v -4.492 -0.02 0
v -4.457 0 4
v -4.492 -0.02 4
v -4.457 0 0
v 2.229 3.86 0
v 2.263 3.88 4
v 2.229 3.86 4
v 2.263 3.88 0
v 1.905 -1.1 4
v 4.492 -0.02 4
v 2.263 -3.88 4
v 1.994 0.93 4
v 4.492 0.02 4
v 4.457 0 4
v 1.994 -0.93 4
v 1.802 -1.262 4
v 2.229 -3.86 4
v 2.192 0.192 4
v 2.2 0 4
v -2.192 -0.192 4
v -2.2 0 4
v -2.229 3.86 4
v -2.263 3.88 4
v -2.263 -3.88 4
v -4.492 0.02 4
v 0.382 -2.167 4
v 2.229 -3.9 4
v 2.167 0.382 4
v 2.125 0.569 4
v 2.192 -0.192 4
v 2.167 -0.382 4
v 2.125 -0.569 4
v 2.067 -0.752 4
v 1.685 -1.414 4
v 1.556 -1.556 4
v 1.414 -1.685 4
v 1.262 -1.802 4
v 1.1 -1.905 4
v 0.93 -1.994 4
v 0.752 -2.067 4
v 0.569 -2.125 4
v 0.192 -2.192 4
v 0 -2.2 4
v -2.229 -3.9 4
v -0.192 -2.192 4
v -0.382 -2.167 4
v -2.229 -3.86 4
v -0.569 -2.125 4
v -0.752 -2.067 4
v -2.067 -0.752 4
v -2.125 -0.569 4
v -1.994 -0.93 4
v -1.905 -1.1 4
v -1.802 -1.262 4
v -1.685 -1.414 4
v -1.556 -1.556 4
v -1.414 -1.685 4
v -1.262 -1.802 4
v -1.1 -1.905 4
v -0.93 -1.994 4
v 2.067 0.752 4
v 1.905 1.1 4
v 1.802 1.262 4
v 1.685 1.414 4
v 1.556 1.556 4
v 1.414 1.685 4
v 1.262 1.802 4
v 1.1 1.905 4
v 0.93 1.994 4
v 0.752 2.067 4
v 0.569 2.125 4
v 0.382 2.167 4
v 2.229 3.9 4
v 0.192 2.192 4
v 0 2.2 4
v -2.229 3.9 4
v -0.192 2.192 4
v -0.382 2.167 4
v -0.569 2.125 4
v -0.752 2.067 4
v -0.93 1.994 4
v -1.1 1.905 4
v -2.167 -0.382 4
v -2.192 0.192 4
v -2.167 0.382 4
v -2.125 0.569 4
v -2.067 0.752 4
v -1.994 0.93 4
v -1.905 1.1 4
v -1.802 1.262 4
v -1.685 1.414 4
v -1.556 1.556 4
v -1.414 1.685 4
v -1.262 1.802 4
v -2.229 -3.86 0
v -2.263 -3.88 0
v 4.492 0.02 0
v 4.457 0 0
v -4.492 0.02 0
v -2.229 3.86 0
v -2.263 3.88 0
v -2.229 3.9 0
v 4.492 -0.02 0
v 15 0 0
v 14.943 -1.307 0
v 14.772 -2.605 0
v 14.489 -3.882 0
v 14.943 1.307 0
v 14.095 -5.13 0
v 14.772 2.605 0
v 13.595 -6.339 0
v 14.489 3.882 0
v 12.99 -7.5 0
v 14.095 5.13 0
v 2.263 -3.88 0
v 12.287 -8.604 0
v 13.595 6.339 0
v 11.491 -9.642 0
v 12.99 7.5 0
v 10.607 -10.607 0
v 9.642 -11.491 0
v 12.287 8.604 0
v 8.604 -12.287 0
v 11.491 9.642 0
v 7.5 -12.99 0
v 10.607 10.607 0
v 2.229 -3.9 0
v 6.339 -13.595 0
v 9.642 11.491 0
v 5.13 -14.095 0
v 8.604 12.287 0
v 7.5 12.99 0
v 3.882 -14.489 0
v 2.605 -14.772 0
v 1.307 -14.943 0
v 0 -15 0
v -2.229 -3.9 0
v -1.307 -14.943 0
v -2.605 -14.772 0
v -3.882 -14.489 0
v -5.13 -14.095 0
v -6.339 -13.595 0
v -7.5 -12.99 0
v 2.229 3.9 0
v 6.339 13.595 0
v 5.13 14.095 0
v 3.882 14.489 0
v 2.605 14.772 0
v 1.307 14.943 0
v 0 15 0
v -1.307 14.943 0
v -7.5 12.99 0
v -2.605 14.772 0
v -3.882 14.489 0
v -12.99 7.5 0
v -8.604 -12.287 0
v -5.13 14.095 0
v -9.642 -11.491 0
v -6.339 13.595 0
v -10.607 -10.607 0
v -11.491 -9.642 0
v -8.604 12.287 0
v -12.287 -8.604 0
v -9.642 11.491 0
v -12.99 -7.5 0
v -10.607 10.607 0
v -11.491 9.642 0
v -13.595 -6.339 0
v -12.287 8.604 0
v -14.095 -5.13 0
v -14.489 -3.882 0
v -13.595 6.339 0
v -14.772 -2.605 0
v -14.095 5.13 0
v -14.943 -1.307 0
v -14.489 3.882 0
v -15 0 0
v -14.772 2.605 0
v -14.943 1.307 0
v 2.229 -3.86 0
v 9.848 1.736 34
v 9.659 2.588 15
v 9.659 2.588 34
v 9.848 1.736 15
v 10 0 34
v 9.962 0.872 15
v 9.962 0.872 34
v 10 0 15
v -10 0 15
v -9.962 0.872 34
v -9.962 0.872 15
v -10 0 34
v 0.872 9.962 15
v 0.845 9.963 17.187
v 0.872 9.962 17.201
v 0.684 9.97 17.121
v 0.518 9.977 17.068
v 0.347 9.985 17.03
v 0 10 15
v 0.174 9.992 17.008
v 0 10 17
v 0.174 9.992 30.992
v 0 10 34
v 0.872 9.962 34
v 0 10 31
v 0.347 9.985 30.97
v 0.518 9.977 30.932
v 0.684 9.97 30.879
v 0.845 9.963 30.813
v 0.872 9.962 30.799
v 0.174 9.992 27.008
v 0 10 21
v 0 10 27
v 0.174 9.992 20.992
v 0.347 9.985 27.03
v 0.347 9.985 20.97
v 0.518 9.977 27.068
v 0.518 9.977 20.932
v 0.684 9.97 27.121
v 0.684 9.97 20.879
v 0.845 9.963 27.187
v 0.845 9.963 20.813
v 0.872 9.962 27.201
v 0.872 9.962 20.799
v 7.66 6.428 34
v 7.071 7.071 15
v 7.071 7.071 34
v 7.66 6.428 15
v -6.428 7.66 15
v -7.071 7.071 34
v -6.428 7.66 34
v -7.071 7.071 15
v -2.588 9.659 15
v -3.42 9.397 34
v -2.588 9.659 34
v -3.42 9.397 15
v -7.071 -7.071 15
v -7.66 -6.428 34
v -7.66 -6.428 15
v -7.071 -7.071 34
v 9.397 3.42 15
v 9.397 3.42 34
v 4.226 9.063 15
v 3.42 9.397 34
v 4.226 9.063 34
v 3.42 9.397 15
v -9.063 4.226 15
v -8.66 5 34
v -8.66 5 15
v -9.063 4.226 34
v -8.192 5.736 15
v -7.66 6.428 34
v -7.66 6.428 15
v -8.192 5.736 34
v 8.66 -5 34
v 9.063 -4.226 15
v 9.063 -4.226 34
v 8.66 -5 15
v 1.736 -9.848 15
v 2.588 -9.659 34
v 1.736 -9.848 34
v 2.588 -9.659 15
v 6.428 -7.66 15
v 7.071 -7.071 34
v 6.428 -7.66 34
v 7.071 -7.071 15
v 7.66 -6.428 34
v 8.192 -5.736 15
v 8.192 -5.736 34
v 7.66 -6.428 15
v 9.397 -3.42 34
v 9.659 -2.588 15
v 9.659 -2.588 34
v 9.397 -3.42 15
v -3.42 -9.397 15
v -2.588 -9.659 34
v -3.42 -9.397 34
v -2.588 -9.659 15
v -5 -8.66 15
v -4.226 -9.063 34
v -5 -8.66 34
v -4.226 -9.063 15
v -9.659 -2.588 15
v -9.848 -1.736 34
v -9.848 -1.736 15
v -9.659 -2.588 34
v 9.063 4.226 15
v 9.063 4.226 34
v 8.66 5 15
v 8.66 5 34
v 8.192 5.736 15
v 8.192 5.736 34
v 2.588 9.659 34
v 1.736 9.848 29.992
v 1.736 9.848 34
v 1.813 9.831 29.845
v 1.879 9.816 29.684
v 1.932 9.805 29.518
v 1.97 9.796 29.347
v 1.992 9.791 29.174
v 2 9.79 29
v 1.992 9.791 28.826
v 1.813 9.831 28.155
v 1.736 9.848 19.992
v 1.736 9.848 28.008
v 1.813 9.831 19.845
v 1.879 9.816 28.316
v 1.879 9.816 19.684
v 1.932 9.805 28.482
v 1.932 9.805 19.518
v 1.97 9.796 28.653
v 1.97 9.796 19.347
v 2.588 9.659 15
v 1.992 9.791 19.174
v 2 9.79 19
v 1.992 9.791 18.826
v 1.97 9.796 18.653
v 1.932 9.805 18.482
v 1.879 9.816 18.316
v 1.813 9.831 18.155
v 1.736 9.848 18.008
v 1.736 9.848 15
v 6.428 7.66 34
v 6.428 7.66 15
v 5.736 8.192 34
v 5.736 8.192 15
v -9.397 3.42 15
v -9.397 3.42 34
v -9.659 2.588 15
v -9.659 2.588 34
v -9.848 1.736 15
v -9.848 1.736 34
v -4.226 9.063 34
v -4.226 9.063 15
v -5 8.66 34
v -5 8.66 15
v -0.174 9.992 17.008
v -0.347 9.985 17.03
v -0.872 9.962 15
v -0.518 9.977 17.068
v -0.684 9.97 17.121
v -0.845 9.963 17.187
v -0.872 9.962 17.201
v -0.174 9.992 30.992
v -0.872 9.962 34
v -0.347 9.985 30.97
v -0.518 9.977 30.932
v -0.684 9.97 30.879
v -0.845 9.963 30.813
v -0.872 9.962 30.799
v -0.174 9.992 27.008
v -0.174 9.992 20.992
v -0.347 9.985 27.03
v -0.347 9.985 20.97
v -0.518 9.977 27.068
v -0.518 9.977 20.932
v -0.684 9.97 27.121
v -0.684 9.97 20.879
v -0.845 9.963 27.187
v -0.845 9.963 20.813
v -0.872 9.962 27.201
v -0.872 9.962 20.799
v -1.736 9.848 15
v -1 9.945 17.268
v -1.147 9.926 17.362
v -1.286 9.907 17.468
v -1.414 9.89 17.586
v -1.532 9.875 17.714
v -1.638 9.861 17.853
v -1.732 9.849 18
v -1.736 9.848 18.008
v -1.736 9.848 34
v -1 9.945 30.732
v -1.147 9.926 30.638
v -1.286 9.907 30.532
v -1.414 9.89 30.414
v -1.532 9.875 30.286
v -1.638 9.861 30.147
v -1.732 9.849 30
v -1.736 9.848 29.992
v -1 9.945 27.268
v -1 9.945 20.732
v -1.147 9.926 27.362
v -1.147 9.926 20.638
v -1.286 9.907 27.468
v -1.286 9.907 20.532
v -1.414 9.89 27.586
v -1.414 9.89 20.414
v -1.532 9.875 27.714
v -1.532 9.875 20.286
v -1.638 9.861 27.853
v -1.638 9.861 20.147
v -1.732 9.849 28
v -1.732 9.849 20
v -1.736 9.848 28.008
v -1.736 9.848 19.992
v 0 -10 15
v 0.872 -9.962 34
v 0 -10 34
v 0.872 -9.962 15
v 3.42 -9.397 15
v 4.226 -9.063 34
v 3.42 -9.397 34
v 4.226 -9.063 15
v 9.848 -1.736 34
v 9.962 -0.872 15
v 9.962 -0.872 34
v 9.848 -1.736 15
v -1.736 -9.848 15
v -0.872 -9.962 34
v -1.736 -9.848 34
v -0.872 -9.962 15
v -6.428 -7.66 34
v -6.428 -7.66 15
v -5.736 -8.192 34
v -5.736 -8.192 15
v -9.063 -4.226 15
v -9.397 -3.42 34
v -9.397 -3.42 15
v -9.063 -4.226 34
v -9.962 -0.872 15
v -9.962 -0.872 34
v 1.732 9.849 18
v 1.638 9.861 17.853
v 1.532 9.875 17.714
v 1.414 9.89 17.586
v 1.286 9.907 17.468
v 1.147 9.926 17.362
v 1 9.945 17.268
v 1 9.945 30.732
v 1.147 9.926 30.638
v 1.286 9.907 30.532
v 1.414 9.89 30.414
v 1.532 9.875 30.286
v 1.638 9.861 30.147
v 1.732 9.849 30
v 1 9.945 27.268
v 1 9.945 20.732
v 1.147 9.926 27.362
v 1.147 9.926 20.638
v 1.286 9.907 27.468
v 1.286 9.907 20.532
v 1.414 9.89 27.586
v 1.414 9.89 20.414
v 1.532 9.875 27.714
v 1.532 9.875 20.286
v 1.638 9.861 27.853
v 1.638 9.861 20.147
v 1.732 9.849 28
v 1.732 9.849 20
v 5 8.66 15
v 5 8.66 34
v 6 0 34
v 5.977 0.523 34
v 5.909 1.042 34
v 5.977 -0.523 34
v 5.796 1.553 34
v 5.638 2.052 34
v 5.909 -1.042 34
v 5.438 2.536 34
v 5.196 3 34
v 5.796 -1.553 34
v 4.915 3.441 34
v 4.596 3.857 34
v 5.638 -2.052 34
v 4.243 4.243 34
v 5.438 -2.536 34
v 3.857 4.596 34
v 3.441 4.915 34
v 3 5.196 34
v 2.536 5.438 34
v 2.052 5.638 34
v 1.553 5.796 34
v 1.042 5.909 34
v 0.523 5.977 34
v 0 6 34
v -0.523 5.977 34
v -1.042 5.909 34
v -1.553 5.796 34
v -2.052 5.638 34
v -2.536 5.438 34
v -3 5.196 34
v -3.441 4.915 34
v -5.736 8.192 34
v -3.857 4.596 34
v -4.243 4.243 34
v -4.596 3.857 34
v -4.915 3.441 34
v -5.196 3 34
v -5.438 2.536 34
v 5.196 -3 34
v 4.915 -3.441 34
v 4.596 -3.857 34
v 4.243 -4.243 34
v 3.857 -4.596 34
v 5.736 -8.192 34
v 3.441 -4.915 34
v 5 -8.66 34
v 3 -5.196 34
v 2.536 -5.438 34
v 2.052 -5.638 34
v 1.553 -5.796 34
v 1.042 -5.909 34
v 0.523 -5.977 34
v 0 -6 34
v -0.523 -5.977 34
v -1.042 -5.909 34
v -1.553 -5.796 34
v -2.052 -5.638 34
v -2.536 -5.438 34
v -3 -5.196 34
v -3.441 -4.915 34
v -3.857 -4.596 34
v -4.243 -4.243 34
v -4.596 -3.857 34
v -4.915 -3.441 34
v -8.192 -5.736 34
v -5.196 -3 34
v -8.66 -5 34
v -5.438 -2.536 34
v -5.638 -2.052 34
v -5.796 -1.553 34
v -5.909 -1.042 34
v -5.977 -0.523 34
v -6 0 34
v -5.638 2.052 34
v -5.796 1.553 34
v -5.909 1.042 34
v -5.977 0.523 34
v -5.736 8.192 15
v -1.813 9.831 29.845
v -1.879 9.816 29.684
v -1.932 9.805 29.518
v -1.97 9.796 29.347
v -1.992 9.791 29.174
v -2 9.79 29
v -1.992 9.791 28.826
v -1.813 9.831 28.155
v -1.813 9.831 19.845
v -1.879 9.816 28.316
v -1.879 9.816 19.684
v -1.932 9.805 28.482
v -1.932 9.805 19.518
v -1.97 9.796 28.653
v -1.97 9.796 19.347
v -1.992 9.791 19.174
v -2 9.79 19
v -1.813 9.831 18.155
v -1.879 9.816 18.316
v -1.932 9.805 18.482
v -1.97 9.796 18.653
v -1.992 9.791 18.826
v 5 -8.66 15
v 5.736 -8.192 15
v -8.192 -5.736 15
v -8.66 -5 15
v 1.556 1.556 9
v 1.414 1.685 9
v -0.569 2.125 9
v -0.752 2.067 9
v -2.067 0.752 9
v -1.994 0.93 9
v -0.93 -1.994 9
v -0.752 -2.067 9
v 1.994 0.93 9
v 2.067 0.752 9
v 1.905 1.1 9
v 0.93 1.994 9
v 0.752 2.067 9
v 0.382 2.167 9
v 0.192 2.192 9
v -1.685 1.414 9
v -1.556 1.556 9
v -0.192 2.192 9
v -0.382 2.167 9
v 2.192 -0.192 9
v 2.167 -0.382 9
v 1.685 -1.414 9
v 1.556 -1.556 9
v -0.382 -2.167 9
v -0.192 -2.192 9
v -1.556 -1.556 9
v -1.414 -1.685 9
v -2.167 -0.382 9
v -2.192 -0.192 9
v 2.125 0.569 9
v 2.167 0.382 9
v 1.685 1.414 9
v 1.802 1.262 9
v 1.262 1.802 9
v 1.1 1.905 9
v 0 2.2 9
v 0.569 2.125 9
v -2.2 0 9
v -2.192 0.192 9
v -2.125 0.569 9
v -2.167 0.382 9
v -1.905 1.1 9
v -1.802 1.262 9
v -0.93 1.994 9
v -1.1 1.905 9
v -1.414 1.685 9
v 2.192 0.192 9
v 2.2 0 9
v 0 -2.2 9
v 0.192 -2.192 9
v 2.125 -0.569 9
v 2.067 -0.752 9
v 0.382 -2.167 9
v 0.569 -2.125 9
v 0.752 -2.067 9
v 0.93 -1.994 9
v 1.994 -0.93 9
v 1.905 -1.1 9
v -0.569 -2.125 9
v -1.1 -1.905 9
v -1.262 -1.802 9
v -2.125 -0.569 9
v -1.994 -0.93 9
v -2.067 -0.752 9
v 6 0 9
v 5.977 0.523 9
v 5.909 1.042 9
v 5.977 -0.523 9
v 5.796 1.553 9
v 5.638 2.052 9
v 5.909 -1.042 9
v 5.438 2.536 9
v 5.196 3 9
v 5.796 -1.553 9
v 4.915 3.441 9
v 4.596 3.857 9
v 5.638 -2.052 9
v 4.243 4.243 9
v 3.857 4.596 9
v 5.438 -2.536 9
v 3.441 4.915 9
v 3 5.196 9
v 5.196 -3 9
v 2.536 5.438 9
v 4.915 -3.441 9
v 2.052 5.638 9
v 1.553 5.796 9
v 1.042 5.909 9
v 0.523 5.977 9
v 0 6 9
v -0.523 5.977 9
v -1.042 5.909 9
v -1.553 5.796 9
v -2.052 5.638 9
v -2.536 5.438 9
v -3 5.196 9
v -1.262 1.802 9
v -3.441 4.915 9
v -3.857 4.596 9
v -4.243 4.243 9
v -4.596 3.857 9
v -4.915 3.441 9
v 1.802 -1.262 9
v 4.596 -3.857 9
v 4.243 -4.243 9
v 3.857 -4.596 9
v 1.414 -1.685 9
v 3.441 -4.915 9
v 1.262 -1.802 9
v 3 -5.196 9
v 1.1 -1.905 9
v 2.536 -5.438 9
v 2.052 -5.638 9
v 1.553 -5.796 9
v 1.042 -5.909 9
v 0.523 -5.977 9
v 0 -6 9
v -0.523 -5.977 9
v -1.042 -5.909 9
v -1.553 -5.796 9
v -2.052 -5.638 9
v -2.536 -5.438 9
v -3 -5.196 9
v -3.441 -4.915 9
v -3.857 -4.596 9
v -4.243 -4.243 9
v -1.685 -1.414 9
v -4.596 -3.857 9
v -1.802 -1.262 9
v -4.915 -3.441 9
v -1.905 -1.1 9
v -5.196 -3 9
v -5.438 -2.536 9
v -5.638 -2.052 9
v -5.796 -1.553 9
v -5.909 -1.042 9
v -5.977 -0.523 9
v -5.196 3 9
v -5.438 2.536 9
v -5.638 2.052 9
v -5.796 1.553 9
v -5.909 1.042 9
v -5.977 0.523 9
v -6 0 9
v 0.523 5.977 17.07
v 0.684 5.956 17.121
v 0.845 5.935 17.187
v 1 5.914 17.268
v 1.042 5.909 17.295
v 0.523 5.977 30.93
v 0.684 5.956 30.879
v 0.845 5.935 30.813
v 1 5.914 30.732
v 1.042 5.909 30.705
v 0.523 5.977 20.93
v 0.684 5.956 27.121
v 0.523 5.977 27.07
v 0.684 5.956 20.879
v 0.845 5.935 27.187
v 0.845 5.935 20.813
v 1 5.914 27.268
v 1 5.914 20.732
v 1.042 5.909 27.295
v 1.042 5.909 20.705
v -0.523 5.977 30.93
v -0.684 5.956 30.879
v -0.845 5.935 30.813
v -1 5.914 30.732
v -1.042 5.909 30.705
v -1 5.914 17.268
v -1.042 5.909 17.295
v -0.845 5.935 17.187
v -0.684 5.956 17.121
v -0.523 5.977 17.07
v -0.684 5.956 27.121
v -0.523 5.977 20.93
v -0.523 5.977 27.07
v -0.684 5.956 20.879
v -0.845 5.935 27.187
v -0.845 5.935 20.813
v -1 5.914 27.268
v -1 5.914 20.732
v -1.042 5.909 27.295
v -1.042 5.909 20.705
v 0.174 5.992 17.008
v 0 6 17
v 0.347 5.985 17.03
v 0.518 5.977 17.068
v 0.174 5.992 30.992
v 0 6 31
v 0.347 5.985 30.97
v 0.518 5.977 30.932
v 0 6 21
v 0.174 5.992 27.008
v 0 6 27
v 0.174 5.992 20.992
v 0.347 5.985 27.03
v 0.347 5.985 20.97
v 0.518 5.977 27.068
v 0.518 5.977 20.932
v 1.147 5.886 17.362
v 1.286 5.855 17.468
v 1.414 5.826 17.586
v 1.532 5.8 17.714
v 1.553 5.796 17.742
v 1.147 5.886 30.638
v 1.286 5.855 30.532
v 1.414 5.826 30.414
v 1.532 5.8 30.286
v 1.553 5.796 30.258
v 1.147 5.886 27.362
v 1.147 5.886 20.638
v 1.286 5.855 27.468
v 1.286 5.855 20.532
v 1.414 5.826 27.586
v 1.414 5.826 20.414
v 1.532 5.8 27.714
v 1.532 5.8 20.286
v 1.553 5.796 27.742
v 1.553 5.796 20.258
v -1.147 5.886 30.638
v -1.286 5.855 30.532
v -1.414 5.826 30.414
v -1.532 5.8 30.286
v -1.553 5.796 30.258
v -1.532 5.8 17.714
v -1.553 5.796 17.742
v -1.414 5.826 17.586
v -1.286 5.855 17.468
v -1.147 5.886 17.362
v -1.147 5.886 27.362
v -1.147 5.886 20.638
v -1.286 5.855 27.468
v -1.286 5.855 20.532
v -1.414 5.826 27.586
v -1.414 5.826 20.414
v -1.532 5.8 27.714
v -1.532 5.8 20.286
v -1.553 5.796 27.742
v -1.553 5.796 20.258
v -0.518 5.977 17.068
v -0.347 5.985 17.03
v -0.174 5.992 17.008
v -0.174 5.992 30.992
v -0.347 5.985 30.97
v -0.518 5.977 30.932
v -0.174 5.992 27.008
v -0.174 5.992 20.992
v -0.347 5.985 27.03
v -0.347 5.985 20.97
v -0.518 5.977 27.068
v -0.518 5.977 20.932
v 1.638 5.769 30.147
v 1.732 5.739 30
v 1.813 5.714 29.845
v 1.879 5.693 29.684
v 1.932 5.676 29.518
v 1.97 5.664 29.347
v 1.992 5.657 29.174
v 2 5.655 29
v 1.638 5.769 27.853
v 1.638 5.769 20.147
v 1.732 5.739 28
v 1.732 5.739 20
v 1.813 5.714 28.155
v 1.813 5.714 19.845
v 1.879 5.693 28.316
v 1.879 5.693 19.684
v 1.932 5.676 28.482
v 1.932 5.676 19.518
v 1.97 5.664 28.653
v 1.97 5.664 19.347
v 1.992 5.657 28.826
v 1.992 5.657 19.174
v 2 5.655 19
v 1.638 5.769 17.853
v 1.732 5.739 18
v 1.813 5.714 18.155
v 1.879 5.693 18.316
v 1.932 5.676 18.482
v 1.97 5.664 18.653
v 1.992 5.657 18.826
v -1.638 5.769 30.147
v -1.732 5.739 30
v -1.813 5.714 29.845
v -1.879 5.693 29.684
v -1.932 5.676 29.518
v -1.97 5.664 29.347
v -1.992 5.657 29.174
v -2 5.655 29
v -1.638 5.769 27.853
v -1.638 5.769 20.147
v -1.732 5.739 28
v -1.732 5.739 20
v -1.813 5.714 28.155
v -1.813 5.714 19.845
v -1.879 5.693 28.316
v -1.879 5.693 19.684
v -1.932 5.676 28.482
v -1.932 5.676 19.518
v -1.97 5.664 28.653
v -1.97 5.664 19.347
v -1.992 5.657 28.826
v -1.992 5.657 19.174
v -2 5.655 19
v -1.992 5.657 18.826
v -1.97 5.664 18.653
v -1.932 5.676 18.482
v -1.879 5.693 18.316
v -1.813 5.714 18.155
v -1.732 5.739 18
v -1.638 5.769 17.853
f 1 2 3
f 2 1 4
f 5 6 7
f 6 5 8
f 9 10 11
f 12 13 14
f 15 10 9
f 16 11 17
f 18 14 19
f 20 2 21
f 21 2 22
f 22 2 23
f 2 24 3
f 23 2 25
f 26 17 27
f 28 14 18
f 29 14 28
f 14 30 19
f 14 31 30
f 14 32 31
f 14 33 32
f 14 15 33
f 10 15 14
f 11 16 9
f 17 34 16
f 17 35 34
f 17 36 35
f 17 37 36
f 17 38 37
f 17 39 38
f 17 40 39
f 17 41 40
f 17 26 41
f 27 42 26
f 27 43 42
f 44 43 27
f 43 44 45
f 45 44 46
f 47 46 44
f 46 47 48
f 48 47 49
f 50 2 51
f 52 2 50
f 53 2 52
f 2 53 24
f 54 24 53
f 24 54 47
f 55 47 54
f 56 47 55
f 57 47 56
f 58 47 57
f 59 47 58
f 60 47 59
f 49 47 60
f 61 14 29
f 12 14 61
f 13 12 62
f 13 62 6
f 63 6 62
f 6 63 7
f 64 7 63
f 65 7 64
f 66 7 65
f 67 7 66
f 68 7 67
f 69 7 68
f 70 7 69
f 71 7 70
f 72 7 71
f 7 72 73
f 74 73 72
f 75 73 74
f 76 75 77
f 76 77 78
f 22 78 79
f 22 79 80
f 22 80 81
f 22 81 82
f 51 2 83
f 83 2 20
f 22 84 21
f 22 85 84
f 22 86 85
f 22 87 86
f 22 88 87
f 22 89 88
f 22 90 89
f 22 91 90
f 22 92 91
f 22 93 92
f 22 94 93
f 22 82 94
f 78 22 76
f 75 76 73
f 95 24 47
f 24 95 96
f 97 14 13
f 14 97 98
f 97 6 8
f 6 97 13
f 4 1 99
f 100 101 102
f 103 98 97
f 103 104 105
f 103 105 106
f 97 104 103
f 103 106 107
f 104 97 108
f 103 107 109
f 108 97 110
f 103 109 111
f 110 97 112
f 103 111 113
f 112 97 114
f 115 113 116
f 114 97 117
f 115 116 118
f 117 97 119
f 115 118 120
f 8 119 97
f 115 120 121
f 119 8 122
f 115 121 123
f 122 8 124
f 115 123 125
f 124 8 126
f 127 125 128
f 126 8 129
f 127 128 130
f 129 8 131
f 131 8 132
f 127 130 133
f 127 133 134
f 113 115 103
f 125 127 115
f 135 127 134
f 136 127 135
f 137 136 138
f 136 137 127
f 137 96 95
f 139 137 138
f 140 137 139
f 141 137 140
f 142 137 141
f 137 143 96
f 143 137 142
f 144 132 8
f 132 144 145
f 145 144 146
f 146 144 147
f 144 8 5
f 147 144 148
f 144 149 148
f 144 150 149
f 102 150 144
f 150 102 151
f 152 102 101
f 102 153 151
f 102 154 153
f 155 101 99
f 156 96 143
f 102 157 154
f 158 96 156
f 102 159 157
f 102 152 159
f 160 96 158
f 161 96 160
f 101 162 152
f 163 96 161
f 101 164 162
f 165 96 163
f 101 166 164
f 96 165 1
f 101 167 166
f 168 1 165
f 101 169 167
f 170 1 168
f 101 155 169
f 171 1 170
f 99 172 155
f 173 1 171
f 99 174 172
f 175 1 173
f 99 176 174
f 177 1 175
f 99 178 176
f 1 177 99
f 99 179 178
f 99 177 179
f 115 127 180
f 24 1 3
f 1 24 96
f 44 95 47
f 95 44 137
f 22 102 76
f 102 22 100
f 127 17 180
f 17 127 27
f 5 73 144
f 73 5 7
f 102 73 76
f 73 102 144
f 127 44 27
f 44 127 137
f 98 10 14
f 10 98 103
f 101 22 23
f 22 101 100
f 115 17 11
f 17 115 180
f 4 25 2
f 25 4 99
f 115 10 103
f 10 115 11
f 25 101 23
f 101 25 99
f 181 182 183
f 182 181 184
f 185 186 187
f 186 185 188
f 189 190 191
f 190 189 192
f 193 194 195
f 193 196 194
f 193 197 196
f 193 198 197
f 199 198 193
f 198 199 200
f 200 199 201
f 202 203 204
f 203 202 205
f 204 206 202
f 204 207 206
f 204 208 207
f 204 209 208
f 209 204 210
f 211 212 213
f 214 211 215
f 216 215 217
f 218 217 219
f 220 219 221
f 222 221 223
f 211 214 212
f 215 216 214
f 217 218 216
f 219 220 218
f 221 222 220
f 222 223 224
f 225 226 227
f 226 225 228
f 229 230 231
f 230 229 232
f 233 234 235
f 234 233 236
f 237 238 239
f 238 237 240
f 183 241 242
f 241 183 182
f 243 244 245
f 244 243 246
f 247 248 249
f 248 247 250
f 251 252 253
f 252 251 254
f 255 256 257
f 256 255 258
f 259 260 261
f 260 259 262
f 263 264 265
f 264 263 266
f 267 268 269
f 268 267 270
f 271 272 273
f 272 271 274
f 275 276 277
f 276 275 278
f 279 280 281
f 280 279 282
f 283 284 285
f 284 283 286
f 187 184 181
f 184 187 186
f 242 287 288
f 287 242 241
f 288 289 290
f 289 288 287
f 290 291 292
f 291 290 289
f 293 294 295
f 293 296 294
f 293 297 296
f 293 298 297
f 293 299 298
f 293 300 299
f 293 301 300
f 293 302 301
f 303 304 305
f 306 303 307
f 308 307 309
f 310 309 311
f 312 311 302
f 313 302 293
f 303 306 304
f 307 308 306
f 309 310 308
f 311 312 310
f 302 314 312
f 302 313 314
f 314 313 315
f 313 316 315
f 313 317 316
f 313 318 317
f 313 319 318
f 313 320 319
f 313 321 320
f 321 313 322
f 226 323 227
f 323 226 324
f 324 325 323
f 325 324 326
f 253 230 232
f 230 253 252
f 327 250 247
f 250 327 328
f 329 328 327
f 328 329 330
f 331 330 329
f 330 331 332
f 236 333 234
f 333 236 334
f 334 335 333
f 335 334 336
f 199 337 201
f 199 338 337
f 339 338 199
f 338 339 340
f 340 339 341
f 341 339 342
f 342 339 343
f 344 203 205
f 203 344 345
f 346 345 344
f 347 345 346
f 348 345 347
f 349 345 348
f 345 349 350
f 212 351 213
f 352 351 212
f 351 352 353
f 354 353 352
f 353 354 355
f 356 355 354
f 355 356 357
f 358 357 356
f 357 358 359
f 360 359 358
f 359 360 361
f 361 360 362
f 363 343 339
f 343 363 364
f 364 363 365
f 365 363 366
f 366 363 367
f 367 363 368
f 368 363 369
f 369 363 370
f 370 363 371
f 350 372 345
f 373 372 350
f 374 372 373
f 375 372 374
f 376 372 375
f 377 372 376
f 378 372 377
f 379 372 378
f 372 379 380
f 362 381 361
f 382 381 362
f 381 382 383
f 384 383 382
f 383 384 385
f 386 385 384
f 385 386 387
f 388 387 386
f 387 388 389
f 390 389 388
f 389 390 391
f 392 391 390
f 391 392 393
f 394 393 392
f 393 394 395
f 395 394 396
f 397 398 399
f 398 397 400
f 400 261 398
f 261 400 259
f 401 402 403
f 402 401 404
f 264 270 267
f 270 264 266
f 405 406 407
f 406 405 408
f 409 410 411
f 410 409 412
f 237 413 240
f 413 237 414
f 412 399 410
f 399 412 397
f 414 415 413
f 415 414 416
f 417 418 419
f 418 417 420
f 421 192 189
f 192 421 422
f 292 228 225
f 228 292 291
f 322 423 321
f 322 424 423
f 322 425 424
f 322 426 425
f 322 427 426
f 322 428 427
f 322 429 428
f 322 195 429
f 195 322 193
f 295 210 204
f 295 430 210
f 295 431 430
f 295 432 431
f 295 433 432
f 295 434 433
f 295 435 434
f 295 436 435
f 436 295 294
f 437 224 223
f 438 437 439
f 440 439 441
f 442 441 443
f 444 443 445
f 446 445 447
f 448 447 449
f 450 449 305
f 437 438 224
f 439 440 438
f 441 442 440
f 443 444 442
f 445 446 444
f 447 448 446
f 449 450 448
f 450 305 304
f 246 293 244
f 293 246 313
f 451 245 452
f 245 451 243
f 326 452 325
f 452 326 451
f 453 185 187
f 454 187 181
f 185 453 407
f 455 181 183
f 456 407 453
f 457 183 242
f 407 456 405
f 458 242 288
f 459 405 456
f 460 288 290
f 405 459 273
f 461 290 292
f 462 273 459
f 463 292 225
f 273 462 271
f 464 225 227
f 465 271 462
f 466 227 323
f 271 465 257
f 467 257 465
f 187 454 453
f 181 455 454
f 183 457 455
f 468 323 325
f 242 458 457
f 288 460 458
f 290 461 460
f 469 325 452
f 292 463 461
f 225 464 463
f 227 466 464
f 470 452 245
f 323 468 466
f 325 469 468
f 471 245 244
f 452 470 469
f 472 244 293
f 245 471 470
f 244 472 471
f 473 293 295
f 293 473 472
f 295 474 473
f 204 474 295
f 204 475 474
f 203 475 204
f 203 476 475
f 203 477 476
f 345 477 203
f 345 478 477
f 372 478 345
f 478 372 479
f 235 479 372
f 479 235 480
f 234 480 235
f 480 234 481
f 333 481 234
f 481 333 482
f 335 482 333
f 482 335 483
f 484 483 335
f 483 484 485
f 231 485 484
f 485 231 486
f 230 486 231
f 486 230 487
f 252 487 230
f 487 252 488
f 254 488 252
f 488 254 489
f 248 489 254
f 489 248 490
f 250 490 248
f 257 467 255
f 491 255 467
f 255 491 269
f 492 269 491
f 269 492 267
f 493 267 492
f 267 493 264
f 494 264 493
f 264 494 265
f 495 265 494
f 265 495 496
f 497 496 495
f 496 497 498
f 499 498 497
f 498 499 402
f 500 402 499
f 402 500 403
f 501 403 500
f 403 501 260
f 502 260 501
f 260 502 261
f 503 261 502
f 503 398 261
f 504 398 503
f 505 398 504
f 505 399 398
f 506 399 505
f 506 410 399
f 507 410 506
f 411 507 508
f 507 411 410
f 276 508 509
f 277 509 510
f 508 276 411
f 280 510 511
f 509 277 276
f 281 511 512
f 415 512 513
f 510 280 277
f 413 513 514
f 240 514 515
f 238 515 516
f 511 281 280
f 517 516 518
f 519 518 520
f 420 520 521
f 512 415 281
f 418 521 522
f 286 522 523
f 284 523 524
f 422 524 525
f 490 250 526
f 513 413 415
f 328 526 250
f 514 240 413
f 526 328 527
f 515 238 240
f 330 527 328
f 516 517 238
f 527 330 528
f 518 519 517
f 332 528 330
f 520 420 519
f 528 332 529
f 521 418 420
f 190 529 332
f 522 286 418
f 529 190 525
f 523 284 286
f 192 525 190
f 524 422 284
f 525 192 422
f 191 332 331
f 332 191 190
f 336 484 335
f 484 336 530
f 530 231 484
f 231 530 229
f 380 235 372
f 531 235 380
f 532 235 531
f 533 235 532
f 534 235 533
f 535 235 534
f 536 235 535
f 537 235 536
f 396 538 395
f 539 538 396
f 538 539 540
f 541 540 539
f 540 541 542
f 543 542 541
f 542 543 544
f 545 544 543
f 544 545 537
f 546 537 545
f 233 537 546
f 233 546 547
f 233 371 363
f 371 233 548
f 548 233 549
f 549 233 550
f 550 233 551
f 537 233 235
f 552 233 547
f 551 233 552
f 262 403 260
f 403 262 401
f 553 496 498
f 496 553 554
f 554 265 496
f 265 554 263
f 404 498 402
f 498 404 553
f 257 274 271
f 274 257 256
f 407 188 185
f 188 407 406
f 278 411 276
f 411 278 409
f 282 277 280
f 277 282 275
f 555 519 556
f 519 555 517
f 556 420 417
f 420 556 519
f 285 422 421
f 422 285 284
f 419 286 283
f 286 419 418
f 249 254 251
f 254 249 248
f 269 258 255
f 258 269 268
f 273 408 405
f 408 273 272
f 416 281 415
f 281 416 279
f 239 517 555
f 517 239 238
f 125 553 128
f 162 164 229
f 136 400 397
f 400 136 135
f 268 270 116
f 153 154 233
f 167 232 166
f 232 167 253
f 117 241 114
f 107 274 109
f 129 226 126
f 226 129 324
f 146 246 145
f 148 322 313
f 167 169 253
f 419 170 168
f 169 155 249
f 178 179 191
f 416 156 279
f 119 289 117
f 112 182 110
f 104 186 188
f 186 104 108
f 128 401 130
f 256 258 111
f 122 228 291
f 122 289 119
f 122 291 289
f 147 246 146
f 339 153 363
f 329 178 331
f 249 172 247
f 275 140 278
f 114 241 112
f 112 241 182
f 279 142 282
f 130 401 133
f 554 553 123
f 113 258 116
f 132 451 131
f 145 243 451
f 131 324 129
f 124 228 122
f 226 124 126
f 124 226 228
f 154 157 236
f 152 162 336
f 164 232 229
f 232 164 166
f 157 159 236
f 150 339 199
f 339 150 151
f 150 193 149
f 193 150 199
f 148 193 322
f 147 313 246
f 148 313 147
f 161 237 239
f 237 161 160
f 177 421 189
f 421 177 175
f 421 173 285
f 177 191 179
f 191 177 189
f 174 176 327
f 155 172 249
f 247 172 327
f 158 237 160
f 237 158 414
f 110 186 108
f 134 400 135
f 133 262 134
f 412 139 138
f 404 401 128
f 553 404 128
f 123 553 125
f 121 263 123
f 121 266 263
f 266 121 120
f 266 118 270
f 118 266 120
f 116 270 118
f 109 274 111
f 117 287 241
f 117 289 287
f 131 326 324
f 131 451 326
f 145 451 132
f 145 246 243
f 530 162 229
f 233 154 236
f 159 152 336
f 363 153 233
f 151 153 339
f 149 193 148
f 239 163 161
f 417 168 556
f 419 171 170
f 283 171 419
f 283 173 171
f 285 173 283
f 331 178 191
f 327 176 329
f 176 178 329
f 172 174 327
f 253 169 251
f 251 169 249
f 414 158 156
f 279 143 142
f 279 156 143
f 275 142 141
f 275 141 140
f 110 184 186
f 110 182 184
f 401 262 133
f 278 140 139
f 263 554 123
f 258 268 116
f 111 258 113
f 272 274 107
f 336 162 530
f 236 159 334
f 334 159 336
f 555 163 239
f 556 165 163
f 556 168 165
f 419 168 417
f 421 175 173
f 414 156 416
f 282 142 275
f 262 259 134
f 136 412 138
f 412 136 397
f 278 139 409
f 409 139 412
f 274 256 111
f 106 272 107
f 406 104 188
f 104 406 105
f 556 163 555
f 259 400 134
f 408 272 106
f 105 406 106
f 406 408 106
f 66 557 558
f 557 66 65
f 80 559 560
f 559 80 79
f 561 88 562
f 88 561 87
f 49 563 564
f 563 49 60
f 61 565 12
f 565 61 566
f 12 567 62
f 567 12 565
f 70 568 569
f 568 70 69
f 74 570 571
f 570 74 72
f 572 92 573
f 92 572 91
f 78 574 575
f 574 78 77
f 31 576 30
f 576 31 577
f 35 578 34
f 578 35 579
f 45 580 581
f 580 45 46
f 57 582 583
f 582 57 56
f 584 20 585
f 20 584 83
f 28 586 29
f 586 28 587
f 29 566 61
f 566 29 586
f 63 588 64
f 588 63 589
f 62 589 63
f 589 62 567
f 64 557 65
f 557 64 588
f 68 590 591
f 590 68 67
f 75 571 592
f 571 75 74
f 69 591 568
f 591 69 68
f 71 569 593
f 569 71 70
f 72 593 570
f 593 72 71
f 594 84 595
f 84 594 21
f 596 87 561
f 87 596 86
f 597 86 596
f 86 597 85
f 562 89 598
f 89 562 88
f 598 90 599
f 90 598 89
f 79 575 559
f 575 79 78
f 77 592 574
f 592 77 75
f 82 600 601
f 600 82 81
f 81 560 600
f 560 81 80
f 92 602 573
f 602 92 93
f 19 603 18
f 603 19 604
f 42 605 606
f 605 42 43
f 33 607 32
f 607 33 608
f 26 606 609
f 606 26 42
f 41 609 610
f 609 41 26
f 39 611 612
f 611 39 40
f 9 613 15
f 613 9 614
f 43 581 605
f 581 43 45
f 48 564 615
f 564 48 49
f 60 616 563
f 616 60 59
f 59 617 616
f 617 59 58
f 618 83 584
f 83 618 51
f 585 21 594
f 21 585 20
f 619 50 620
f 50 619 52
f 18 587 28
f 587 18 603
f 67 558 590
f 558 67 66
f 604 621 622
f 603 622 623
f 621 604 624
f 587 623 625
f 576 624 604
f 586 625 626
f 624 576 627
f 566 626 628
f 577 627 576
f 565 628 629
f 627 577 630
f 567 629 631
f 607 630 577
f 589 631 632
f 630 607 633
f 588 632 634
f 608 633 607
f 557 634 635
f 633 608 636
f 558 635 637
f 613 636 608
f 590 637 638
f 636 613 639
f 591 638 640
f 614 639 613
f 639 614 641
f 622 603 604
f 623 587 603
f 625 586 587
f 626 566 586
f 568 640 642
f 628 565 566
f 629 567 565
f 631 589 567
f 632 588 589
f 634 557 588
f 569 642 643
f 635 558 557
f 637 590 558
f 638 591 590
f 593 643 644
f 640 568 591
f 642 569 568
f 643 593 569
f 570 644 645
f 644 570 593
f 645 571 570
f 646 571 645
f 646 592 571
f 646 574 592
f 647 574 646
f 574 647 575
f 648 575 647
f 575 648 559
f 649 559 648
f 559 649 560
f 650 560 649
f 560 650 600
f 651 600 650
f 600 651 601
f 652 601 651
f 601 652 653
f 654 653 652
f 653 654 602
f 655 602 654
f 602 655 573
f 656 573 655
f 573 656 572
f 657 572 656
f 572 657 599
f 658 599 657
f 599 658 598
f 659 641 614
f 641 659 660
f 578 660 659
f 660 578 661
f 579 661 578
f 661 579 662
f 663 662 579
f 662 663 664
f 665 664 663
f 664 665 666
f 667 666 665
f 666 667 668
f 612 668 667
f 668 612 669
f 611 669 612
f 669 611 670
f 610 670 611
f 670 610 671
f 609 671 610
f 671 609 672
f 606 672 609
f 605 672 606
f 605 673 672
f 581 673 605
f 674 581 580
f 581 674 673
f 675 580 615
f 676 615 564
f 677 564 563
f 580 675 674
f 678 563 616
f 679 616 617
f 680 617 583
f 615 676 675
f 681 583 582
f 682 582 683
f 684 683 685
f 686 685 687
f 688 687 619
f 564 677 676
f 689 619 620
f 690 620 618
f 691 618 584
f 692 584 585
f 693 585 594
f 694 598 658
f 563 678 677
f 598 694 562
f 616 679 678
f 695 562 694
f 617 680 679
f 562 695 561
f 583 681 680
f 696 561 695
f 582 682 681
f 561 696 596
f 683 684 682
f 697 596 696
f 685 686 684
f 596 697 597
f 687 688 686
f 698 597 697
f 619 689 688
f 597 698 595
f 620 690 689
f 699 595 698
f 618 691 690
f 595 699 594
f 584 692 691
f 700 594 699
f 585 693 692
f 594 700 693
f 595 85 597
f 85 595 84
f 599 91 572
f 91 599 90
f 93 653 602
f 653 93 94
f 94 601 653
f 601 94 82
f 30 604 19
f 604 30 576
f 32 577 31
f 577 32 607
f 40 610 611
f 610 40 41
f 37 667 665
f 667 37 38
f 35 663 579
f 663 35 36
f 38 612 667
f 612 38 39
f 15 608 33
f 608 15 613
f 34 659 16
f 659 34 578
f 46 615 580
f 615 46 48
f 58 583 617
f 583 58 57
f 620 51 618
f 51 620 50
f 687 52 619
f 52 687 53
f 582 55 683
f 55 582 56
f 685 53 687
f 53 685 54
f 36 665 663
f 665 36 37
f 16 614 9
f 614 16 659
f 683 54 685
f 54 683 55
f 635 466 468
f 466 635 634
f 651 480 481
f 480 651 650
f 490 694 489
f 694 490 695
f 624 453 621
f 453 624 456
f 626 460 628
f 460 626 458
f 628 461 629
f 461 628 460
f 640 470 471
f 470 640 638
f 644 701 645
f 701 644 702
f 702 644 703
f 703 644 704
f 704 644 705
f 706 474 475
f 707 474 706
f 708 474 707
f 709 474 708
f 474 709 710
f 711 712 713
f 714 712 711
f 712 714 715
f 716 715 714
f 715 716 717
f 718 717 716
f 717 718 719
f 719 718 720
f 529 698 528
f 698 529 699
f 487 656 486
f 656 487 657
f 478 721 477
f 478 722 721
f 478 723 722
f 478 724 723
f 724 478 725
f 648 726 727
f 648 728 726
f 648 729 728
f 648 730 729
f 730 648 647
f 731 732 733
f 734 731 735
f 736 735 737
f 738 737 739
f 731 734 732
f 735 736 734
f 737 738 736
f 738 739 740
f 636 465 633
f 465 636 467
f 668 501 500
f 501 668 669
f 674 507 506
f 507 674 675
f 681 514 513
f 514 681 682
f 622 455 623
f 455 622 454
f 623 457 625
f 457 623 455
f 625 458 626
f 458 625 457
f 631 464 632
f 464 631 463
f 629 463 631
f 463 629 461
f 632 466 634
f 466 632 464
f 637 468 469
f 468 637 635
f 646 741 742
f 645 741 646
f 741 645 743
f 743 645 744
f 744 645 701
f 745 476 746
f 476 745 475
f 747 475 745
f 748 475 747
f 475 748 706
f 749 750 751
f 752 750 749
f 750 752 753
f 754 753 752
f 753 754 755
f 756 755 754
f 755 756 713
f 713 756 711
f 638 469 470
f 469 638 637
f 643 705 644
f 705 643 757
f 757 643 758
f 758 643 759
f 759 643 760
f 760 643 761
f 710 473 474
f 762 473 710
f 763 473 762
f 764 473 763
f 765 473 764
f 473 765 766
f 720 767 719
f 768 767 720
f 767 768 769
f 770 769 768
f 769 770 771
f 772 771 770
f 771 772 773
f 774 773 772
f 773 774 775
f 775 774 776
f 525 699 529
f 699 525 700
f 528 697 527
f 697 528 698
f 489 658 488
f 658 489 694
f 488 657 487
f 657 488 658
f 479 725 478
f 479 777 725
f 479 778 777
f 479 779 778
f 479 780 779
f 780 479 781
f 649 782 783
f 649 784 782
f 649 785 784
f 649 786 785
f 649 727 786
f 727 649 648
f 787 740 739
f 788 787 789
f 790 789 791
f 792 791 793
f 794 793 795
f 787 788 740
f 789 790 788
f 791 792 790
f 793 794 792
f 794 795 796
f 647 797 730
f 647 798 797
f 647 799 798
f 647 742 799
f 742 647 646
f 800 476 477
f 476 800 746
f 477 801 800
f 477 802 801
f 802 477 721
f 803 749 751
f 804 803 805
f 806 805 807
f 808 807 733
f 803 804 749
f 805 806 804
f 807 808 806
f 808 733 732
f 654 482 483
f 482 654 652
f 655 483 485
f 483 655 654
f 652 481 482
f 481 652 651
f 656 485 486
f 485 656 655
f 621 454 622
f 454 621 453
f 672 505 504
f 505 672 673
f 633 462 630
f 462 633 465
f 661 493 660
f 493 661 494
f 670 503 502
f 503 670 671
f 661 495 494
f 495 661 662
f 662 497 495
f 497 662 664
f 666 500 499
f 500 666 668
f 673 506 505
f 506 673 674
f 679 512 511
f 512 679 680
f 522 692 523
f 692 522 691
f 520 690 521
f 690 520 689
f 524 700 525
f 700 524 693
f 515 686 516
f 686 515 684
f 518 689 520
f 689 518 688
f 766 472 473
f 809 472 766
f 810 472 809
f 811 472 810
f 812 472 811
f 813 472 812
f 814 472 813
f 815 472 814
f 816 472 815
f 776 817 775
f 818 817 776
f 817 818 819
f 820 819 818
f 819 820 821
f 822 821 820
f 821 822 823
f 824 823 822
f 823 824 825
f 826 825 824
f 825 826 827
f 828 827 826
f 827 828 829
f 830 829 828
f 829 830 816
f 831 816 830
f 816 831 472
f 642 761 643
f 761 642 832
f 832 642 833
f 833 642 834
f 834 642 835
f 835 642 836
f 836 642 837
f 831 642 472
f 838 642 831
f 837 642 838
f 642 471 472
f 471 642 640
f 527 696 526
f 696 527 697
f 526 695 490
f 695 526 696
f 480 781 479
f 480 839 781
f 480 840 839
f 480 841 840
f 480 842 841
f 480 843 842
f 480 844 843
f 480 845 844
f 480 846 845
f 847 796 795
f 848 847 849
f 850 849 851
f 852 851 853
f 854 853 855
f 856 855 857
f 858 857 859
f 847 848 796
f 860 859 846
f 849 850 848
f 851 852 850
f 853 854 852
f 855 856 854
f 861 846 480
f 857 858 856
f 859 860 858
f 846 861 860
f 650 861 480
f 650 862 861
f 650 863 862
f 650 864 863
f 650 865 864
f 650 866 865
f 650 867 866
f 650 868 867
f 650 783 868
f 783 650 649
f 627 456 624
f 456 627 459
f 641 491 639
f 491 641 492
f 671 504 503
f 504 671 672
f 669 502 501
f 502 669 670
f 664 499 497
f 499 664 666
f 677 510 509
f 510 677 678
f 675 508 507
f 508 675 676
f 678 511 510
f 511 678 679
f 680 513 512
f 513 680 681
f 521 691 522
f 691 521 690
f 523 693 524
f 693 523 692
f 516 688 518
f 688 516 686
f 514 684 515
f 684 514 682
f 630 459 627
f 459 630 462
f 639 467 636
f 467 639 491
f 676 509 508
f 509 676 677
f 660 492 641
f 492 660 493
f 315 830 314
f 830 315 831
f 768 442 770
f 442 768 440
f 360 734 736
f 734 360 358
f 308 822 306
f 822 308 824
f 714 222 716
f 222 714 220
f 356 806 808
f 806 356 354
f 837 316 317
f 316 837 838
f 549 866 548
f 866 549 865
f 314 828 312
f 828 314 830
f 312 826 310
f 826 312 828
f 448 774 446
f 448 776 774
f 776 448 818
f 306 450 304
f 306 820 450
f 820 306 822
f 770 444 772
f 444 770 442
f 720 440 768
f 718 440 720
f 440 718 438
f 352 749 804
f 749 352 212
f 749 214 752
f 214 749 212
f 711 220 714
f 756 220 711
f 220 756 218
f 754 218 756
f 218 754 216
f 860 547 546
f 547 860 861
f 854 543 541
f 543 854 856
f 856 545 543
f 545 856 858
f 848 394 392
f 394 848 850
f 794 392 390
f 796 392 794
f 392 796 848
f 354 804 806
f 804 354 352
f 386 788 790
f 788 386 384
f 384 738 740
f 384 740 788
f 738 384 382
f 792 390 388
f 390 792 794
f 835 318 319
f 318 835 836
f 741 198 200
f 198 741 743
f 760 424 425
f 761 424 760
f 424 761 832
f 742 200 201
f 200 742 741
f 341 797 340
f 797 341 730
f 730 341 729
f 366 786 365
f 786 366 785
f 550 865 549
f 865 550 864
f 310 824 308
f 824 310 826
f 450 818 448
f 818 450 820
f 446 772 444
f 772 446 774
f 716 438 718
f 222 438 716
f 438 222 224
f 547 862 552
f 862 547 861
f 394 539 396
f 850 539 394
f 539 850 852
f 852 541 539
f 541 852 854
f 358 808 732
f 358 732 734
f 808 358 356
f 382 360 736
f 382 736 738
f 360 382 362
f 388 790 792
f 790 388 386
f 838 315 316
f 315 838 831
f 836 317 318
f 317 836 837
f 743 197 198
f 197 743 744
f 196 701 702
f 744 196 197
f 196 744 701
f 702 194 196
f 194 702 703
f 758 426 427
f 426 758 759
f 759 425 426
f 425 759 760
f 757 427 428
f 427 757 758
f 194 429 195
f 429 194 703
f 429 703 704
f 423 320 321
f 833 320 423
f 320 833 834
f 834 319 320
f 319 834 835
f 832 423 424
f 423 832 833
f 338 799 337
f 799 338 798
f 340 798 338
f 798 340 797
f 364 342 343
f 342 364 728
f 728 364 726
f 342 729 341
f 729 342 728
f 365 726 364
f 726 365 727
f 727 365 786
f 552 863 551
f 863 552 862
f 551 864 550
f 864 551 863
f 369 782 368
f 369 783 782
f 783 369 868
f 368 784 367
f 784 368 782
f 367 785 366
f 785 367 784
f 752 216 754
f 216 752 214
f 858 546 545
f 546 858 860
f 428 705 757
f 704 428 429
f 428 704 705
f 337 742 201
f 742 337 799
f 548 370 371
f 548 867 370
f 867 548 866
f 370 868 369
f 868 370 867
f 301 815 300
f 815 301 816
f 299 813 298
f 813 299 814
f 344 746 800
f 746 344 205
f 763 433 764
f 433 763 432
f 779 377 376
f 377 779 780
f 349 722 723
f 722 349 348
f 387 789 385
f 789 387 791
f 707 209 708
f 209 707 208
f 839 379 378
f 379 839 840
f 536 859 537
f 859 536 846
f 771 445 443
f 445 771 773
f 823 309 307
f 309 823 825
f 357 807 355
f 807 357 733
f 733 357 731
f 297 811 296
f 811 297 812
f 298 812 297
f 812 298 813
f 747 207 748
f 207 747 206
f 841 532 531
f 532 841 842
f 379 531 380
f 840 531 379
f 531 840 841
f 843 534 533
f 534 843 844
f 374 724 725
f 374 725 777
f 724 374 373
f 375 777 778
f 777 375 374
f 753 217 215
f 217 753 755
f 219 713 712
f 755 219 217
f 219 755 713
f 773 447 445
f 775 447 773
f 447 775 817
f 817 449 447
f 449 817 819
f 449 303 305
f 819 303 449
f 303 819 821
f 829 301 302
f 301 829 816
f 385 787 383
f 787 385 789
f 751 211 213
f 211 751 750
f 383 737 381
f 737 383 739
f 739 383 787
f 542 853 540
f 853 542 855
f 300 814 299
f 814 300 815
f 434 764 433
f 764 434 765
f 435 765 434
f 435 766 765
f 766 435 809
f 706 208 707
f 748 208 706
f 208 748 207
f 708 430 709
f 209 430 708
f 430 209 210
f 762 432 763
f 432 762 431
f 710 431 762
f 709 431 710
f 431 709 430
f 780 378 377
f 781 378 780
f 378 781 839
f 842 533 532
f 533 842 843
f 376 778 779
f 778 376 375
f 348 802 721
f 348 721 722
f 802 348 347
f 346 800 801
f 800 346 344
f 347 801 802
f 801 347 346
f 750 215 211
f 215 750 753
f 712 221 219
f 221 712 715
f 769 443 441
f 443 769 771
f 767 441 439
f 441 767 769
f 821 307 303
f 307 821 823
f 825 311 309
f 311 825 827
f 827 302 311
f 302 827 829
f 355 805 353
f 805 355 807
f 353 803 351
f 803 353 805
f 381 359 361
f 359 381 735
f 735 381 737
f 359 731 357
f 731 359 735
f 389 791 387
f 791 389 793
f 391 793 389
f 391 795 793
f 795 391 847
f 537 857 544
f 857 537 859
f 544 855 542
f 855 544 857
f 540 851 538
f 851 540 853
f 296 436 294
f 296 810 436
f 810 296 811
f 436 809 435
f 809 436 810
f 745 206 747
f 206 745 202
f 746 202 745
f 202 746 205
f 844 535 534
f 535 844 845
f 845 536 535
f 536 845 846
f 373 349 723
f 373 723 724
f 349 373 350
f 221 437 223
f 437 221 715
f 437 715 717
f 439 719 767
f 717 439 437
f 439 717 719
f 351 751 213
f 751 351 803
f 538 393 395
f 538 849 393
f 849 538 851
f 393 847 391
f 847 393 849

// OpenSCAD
$fa=5; $fs=0.1;

module hexagon(in_diam, height) {
  cube_x = in_diam/1.75;
  for (r = [-60, 0, 60]) rotate([0,0,r]) cube([cube_x, in_diam, height], center=true);
}


difference(){
	union(){
		translate([0,0,17]) cylinder(r=10, h=34, center=true); //основная трубка
        translate([0,0,7.5]) cylinder(r1=15, r2=10, h=15, center=true); //подошва
	}

	union(){
		translate([0, 0, 2]) hexagon(7.8, 4); // под гайку
        translate([0, 0, 4.5]) cylinder (r=2.2, h=9, center=true); // под винт
    	translate([0, 0, 21.5]) cylinder(r=6, h=25, center=true); // под жердочку
        
        translate([0, 8, 19]) rotate([90,0,0]) cylinder (h=5, r=2, center=true); // под саморезы
        translate([0, 8, 29]) rotate([90,0,0]) cylinder (h=5, r=2, center=true);
	}
}
